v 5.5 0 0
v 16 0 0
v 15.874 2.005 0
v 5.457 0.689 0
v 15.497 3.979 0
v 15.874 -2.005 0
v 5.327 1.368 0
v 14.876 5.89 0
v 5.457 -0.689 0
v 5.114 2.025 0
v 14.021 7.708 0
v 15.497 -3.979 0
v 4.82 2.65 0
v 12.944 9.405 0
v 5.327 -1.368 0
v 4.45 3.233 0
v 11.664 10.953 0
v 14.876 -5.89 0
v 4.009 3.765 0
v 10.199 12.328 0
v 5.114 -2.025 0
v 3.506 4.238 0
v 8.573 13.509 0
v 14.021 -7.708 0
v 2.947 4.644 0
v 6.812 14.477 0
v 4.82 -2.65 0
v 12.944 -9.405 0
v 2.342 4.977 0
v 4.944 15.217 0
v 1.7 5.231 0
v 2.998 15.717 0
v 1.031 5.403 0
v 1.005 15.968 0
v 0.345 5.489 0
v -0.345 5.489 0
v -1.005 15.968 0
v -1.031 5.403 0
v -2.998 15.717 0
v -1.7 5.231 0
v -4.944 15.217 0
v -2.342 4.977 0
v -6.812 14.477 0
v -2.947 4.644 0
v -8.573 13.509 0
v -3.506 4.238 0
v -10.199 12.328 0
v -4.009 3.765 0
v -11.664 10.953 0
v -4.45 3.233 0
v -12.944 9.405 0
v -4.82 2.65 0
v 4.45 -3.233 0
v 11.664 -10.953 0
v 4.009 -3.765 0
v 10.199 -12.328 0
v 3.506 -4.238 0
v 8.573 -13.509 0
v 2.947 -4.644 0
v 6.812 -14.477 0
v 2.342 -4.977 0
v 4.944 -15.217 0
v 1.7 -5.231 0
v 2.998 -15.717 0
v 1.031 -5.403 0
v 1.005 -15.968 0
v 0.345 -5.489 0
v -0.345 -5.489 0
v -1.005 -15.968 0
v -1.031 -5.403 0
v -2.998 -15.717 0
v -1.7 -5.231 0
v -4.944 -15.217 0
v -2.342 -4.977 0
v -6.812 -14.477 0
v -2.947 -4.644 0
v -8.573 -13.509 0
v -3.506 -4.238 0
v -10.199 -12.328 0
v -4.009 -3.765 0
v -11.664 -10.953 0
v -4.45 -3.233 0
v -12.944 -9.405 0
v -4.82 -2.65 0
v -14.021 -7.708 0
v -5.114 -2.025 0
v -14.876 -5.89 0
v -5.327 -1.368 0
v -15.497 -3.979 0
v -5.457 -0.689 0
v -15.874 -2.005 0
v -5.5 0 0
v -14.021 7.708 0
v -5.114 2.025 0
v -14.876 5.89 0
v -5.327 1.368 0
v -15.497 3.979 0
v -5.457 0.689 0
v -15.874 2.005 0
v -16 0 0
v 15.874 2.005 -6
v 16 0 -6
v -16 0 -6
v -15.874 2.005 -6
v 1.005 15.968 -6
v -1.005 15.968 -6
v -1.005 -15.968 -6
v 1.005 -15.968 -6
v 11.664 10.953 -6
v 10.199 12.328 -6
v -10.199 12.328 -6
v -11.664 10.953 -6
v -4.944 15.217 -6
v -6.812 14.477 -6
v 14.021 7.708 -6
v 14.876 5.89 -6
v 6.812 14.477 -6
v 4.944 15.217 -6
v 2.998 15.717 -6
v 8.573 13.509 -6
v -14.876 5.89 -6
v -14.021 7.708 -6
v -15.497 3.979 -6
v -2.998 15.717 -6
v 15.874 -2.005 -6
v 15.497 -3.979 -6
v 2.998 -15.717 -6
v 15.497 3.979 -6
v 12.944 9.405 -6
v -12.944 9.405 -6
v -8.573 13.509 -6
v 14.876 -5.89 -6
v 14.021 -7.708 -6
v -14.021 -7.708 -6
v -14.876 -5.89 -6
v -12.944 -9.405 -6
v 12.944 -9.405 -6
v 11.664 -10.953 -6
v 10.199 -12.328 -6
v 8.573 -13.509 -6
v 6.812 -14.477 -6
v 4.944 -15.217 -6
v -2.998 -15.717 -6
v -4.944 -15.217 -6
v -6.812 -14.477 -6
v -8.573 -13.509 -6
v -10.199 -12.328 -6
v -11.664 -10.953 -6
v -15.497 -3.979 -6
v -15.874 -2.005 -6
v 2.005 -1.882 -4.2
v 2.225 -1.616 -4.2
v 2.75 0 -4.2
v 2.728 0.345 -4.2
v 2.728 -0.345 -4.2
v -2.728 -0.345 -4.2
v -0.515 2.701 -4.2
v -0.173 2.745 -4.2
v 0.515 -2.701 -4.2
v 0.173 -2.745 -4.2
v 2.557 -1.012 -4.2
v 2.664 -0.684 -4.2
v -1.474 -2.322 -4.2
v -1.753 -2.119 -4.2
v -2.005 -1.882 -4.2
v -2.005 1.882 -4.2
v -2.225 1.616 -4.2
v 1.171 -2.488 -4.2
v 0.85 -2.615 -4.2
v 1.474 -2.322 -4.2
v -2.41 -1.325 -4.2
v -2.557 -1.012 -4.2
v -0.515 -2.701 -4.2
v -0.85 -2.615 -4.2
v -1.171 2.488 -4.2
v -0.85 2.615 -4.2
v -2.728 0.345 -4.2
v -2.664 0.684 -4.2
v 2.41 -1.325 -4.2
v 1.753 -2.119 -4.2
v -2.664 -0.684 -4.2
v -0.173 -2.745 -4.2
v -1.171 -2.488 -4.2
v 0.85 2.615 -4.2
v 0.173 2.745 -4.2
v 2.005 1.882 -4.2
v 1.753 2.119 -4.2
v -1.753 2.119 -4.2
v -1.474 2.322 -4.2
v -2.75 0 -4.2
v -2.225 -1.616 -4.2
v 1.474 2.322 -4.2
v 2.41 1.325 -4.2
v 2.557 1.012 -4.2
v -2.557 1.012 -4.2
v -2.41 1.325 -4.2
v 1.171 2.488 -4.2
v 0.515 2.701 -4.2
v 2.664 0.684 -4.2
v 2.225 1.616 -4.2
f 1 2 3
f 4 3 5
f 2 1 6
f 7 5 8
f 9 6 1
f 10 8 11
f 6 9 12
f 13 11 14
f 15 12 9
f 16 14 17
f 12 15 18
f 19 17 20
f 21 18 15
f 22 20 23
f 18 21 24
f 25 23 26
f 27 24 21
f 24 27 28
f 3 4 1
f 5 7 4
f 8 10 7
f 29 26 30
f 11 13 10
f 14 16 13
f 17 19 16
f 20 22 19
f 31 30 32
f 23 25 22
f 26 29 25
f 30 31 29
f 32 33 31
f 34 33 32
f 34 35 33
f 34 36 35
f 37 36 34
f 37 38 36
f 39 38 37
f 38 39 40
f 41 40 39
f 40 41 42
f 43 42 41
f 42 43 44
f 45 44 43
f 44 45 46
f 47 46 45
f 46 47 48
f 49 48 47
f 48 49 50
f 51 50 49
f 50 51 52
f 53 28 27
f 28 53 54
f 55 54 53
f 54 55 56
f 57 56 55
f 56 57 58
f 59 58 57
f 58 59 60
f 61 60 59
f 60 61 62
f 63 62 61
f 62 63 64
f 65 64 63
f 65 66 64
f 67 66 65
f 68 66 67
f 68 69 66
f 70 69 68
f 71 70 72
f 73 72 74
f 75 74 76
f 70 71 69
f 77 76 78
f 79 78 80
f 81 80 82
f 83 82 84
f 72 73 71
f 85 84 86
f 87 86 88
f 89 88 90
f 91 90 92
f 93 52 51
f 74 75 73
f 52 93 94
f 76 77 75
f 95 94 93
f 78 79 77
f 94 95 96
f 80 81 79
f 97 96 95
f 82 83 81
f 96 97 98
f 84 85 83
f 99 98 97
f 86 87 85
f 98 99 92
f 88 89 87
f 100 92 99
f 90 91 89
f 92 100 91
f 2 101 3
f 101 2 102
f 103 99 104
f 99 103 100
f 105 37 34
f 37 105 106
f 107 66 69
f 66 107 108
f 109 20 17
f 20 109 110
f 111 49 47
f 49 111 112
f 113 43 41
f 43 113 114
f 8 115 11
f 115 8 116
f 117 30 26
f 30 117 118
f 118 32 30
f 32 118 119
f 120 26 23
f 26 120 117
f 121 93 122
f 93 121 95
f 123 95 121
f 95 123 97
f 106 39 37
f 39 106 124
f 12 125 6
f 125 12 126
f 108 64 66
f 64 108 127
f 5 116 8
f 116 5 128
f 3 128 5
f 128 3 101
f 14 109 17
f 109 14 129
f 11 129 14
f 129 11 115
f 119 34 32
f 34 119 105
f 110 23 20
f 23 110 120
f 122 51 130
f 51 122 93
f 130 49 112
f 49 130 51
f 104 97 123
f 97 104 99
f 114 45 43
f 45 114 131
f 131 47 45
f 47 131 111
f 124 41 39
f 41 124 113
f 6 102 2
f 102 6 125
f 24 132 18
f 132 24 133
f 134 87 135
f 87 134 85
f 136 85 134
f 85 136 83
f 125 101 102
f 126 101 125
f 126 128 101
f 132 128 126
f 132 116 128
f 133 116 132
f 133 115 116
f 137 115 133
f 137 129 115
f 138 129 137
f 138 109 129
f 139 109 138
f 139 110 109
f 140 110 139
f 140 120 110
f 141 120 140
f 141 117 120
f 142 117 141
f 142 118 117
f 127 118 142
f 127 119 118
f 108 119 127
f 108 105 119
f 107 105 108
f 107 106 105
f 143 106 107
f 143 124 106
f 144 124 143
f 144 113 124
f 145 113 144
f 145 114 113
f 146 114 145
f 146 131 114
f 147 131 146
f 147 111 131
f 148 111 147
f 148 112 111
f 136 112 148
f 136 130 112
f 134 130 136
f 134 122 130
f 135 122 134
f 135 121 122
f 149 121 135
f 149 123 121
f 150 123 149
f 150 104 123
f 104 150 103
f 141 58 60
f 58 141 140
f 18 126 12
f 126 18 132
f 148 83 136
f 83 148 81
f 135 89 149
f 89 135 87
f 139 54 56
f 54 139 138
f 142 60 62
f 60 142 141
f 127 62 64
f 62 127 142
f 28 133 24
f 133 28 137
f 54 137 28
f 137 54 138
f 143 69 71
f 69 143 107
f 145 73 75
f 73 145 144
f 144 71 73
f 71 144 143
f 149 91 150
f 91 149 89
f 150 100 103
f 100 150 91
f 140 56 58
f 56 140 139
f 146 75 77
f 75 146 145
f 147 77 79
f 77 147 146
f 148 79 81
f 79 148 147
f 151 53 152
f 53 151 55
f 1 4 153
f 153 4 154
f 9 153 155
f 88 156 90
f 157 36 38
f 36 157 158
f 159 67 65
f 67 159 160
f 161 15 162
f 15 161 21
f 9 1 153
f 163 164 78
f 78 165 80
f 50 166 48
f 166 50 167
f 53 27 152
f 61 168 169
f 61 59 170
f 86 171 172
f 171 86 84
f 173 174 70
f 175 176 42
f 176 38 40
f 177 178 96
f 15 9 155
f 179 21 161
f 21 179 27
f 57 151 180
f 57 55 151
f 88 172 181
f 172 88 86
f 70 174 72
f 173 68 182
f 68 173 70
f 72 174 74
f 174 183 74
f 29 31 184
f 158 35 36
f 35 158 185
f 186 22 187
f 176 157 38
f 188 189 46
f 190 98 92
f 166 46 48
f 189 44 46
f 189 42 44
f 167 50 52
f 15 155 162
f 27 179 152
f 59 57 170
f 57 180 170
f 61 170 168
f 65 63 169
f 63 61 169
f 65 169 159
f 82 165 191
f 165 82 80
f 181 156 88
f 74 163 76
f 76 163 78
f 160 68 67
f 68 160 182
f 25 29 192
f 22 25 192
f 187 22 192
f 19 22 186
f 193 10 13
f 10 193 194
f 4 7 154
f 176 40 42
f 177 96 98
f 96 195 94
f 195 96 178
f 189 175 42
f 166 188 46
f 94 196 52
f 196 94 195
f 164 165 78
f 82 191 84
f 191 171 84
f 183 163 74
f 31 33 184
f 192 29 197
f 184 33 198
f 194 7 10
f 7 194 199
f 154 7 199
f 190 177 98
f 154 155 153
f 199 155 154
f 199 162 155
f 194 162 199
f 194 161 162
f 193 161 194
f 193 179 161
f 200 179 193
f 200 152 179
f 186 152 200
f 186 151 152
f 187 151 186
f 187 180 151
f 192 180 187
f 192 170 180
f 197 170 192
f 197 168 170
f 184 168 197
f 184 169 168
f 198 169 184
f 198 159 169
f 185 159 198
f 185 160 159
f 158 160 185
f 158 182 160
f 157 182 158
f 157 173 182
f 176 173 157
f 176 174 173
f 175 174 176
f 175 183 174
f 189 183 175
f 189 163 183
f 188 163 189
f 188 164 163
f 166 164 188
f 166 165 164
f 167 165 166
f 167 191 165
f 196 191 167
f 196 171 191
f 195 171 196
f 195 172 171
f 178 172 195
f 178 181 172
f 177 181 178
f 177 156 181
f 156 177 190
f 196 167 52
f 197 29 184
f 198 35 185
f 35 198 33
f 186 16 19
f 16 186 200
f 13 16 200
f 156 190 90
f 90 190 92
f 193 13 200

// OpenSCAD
$fn = 50;


difference() {
	union() {
		translate(v = [0, 0, -3.0000000000]) {
			cylinder(h = 3, r = 7.0000000000);
		}
		translate(v = [0, 0, -6.0000000000]) {
			cylinder(h = 6, r = 16.0000000000);
		}
	}
	union() {
		translate(v = [0, 0, 0]) {
			rotate(a = [0, 0, 0]) {
				difference() {
					union() {
						#translate(v = [0, 0, -3.0000000000]) {
							cylinder(h = 3, r = 2.2500000000);
						}
						#translate(v = [0, 0, -4.2000000000]) {
							cylinder(h = 4.2000000000, r1 = 2.7500000000, r2 = 5.5000000000);
						}
						#translate(v = [0, 0, -3.0000000000]) {
							cylinder(h = 3, r = 2.7500000000);
						}
						#translate(v = [0, 0, -3.0000000000]) {
							cylinder(h = 3, r = 2.2500000000);
						}
					}
					union();
				}
			}
		}
	}
}
